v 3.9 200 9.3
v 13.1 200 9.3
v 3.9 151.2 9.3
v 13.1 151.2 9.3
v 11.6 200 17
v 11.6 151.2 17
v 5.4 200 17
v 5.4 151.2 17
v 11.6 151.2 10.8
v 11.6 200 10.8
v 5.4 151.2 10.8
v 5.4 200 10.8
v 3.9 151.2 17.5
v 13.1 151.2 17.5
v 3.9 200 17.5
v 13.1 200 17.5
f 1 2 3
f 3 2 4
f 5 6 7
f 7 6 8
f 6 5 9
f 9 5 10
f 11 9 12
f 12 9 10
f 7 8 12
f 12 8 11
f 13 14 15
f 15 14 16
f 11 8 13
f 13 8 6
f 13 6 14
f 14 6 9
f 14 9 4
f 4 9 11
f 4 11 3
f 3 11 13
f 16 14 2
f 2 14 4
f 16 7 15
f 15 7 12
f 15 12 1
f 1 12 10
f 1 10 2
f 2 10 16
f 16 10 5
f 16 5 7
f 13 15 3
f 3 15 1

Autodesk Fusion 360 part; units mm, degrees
sketch "Sketch1" plane through (0, 0, 0) normal (0, 0, 1) x (1, 0, 0)
  line L0 (0, 0) -> (17, 0)
  line L1 (17, 0) -> (17, 200)
  line L2 (17, 200) -> (0, 200)
  line L3 (0, 200) -> (0, 0)
  line L4 (5, 0) -> (5, 200)
  line L5 (12, 0) -> (12, 200)
  dimension "d1" = 17
  dimension "d2" = 200
  dimension "d3" = 200
  dimension "d4" = 7
  dimension "d5" = 200
extrude "Extrude1" add sketch "Sketch1" along normal blind 5
sketch "Sketch2" plane through (0, 0, 5) normal (0, 0, 1) x (-1, 0, 0)
  line L0 (0, -200) -> (0, 0)
  line L1 (0, 0) -> (-17, 0)
  line L2 (-17, 0) -> (-17, -200)
  line L3 (-17, -200) -> (0, -200)
  line L4 (-5, 0) -> (-5, -200)
  line L5 (-12, 0) -> (-12, -200)
  dimension "d8" = 5
  dimension "d9" = 7
  dimension "d10" = 200
  dimension "d11" = 200
extrude "Extrude2" add sketch "Sketch2" along normal blind 12 contours L0 L1 L3 L4 | L1 L2 L3 L5
sketch "Sketch3" plane through (12, 0, 0) normal (-1, 0, 0) x (0, -1, 0)
  line L0 (-200, 5) -> (0, 5)
  line L1 (0, 5) -> (0, 17)
  line L2 (0, 17) -> (-200, 17)
  line L3 (-200, 17) -> (-200, 5)
  line L4 (0, 17) -> (0, 12)
  line L5 (0, 12) -> (-200, 12)
  dimension "d14" = 200
extrude "Extrude3" add sketch "Sketch3" along normal blind 7 contours L1 L2 L3 L4 L5
move_face "OffsetFaces1" offset -0.5 4 faces at (12, 133.3333, 9.6667) (9.6667, 66.6667, 12) (5, 133.3333, 9.6667) (7.3333, 133.3333, 5)
sketch "Sketch4" plane through (0, 0, 17) normal (0, 0, 1) x (-1, 0, 0)
  line L0 (-17, -200) -> (0, -200)
  line L1 (0, -200) -> (0, 0)
  line L2 (0, 0) -> (-17, 0)
  line L3 (-17, 0) -> (-17, -200)
  line L4 (25, 0) -> (25, -200)
  line L5 (-42, 0) -> (-42, -200)
  line L6 (25, -200) -> (-42, -200)
  line L7 (25, 0) -> (-42, 0)
  dimension "d18" = 25
  dimension "d19" = 25
extrude "Extrude4" add sketch "Sketch4" along normal blind 2.5
move_face "OffsetFaces2" offset -3 3 faces at (17, 133.3333, 11.3333) (5.6667, 133.3333, 0) (0, 133.3333, 5.6667)
move_face "MoveFace1" by (0, 0, 3) 4 faces at (9.8333, 66.6667, 12.5) (4.5, 133.3333, 9.8333) (7.1667, 133.3333, 4.5) (12.5, 133.3333, 9.8333)
extrude "Extrude5" cut 1 faces at (6.6667, 133.3333, 3) along direction (0, 0, 1) blind 3
extrude "Extrude6" cut 1 faces at (19.6667, 133.3333, 19.5) along direction (0, 0, -1) blind 1
move_face "OffsetFaces3" offset 0.5 4 faces at (12.5, 133.3333, 12.8333) (7.1667, 133.3333, 7.5) (9.8333, 66.6667, 15.5) (4.5, 133.3333, 12.8333)
move_face "OffsetFaces4" offset 1 4 faces at (5, 133.3333, 12.6667) (7.3333, 133.3333, 8) (12, 133.3333, 12.6667) (7.3333, 66.6667, 15)
move_face "OffsetFaces5" offset -0.5 4 faces at (11, 133.3333, 12.3333) (9.3333, 66.6667, 14) (6, 133.3333, 12.3333) (7.6667, 133.3333, 9)
move_face "OffsetFaces6" offset -0.5 3 faces at (14, 66.6667, 9.6667) (6.6667, 133.3333, 6) (3, 66.6667, 13.3333)
move_face "OffsetFaces7" offset -0.5 3 faces at (13.5, 66.6667, 10) (6.8333, 133.3333, 6.5) (3.5, 66.6667, 13.5)
move_face "OffsetFaces8" offset -0.5 3 faces at (13, 66.6667, 10.3333) (7, 133.3333, 7) (4, 66.6667, 13.6667)
move_face "MoveFace2" by (0, 0, 3) 4 faces at (11.5, 133.3333, 12.5) (7.5, 66.6667, 14.5) (7.5, 133.3333, 8.5) (5.5, 133.3333, 12.5)
move_face "OffsetFaces9" offset -3 1 faces at (7.1667, 133.3333, 7.5)
move_face "OffsetFaces10" offset -0.5 2 faces at (32.1667, 133.3333, 17) (-5.3333, 66.6667, 17)
extrude "Extrude7" add 1 faces at (7.1667, 133.3333, 10.5) along direction (0, 0, -1) blind 0.5
move_face "MoveFace3" by (0, 0, -0.5) 4 faces at (11.5, 66.6667, 13.5) (7.5, 66.6667, 17.5) (5.5, 66.6667, 13.5) (7.5, 133.3333, 11.5)
move_face "OffsetFaces11" offset -4.5 1 faces at (42, 66.6667, 17.8333)
move_face "OffsetFaces12" offset -4.5 1 faces at (-25, 66.6667, 17.8333)
move_face "OffsetFaces13" offset 50 1 faces at (7.1667, 0, 18.1667)
move_face "OffsetFaces14" offset -0.5 4 faces at (11.5, 116.6667, 15) (7.5, 116.6667, 11) (5.5, 116.6667, 15) (9.5, 33.3333, 17)
move_face "OffsetFaces15" offset 0.5 3 faces at (12.5, 33.3333, 12.5) (7.1667, 116.6667, 10) (4.5, 116.6667, 15)
move_face "OffsetFaces16" offset 0.5 1 faces at (10, 33.3333, 9.5)
move_face "MoveFace4" by (0, 0, -0.5) 4 faces at (12, 33.3333, 15.1667) (9.6667, 33.3333, 10.5) (5, 33.3333, 15.1667) (7.3333, 116.6667, 17.5)
move_face "OffsetFaces17" offset 0.5 4 faces at (12, 33.3333, 14.6667) (7.3333, 116.6667, 17) (5, 33.3333, 14.6667) (9.6667, 33.3333, 10)
move_face "MoveFace5" by (0, 0, 0.5) 4 faces at (5.5, 116.6667, 14.5) (7.5, 116.6667, 10.5) (11.5, 116.6667, 14.5) (9.5, 33.3333, 16.5)
move_face "OffsetFaces18" offset -0.5 1 faces at (10, 33.3333, 9)
move_face "OffsetFaces19" offset -0.02 1 faces at (7.5, 116.6667, 11)
move_face "OffsetFaces20" offset -0.2 2 faces at (11.5, 116.6667, 14.9933) (5.5, 116.6667, 14.9933)
move_face "OffsetFaces21" offset -0.18 2 faces at (9.5667, 33.3333, 17) (7.4333, 116.6667, 10.98)
move_face "OffsetFaces22" offset 0.18 1 faces at (9.5667, 33.3333, 17.18)
move_face "OffsetFaces23" offset 0.1 2 faces at (11.7, 33.3333, 12.8667) (5.3, 33.3333, 12.8667)
move_face "OffsetFaces24" offset 0.1 2 faces at (13, 116.6667, 14.8333) (4, 33.3333, 12.1667)
move_face "OffsetFaces25" offset 0.2 1 faces at (6.9667, 116.6667, 9.5)
move_face "OffsetFaces26" offset -1 1 faces at (18.1667, 116.6667, 18.5)
move_face "OffsetFaces27" offset -202.2 1 faces at (7.4667, -50, 9.8)
move_face "OffsetFaces28" offset 1 1 faces at (7.4667, 152.2, 9.8)
